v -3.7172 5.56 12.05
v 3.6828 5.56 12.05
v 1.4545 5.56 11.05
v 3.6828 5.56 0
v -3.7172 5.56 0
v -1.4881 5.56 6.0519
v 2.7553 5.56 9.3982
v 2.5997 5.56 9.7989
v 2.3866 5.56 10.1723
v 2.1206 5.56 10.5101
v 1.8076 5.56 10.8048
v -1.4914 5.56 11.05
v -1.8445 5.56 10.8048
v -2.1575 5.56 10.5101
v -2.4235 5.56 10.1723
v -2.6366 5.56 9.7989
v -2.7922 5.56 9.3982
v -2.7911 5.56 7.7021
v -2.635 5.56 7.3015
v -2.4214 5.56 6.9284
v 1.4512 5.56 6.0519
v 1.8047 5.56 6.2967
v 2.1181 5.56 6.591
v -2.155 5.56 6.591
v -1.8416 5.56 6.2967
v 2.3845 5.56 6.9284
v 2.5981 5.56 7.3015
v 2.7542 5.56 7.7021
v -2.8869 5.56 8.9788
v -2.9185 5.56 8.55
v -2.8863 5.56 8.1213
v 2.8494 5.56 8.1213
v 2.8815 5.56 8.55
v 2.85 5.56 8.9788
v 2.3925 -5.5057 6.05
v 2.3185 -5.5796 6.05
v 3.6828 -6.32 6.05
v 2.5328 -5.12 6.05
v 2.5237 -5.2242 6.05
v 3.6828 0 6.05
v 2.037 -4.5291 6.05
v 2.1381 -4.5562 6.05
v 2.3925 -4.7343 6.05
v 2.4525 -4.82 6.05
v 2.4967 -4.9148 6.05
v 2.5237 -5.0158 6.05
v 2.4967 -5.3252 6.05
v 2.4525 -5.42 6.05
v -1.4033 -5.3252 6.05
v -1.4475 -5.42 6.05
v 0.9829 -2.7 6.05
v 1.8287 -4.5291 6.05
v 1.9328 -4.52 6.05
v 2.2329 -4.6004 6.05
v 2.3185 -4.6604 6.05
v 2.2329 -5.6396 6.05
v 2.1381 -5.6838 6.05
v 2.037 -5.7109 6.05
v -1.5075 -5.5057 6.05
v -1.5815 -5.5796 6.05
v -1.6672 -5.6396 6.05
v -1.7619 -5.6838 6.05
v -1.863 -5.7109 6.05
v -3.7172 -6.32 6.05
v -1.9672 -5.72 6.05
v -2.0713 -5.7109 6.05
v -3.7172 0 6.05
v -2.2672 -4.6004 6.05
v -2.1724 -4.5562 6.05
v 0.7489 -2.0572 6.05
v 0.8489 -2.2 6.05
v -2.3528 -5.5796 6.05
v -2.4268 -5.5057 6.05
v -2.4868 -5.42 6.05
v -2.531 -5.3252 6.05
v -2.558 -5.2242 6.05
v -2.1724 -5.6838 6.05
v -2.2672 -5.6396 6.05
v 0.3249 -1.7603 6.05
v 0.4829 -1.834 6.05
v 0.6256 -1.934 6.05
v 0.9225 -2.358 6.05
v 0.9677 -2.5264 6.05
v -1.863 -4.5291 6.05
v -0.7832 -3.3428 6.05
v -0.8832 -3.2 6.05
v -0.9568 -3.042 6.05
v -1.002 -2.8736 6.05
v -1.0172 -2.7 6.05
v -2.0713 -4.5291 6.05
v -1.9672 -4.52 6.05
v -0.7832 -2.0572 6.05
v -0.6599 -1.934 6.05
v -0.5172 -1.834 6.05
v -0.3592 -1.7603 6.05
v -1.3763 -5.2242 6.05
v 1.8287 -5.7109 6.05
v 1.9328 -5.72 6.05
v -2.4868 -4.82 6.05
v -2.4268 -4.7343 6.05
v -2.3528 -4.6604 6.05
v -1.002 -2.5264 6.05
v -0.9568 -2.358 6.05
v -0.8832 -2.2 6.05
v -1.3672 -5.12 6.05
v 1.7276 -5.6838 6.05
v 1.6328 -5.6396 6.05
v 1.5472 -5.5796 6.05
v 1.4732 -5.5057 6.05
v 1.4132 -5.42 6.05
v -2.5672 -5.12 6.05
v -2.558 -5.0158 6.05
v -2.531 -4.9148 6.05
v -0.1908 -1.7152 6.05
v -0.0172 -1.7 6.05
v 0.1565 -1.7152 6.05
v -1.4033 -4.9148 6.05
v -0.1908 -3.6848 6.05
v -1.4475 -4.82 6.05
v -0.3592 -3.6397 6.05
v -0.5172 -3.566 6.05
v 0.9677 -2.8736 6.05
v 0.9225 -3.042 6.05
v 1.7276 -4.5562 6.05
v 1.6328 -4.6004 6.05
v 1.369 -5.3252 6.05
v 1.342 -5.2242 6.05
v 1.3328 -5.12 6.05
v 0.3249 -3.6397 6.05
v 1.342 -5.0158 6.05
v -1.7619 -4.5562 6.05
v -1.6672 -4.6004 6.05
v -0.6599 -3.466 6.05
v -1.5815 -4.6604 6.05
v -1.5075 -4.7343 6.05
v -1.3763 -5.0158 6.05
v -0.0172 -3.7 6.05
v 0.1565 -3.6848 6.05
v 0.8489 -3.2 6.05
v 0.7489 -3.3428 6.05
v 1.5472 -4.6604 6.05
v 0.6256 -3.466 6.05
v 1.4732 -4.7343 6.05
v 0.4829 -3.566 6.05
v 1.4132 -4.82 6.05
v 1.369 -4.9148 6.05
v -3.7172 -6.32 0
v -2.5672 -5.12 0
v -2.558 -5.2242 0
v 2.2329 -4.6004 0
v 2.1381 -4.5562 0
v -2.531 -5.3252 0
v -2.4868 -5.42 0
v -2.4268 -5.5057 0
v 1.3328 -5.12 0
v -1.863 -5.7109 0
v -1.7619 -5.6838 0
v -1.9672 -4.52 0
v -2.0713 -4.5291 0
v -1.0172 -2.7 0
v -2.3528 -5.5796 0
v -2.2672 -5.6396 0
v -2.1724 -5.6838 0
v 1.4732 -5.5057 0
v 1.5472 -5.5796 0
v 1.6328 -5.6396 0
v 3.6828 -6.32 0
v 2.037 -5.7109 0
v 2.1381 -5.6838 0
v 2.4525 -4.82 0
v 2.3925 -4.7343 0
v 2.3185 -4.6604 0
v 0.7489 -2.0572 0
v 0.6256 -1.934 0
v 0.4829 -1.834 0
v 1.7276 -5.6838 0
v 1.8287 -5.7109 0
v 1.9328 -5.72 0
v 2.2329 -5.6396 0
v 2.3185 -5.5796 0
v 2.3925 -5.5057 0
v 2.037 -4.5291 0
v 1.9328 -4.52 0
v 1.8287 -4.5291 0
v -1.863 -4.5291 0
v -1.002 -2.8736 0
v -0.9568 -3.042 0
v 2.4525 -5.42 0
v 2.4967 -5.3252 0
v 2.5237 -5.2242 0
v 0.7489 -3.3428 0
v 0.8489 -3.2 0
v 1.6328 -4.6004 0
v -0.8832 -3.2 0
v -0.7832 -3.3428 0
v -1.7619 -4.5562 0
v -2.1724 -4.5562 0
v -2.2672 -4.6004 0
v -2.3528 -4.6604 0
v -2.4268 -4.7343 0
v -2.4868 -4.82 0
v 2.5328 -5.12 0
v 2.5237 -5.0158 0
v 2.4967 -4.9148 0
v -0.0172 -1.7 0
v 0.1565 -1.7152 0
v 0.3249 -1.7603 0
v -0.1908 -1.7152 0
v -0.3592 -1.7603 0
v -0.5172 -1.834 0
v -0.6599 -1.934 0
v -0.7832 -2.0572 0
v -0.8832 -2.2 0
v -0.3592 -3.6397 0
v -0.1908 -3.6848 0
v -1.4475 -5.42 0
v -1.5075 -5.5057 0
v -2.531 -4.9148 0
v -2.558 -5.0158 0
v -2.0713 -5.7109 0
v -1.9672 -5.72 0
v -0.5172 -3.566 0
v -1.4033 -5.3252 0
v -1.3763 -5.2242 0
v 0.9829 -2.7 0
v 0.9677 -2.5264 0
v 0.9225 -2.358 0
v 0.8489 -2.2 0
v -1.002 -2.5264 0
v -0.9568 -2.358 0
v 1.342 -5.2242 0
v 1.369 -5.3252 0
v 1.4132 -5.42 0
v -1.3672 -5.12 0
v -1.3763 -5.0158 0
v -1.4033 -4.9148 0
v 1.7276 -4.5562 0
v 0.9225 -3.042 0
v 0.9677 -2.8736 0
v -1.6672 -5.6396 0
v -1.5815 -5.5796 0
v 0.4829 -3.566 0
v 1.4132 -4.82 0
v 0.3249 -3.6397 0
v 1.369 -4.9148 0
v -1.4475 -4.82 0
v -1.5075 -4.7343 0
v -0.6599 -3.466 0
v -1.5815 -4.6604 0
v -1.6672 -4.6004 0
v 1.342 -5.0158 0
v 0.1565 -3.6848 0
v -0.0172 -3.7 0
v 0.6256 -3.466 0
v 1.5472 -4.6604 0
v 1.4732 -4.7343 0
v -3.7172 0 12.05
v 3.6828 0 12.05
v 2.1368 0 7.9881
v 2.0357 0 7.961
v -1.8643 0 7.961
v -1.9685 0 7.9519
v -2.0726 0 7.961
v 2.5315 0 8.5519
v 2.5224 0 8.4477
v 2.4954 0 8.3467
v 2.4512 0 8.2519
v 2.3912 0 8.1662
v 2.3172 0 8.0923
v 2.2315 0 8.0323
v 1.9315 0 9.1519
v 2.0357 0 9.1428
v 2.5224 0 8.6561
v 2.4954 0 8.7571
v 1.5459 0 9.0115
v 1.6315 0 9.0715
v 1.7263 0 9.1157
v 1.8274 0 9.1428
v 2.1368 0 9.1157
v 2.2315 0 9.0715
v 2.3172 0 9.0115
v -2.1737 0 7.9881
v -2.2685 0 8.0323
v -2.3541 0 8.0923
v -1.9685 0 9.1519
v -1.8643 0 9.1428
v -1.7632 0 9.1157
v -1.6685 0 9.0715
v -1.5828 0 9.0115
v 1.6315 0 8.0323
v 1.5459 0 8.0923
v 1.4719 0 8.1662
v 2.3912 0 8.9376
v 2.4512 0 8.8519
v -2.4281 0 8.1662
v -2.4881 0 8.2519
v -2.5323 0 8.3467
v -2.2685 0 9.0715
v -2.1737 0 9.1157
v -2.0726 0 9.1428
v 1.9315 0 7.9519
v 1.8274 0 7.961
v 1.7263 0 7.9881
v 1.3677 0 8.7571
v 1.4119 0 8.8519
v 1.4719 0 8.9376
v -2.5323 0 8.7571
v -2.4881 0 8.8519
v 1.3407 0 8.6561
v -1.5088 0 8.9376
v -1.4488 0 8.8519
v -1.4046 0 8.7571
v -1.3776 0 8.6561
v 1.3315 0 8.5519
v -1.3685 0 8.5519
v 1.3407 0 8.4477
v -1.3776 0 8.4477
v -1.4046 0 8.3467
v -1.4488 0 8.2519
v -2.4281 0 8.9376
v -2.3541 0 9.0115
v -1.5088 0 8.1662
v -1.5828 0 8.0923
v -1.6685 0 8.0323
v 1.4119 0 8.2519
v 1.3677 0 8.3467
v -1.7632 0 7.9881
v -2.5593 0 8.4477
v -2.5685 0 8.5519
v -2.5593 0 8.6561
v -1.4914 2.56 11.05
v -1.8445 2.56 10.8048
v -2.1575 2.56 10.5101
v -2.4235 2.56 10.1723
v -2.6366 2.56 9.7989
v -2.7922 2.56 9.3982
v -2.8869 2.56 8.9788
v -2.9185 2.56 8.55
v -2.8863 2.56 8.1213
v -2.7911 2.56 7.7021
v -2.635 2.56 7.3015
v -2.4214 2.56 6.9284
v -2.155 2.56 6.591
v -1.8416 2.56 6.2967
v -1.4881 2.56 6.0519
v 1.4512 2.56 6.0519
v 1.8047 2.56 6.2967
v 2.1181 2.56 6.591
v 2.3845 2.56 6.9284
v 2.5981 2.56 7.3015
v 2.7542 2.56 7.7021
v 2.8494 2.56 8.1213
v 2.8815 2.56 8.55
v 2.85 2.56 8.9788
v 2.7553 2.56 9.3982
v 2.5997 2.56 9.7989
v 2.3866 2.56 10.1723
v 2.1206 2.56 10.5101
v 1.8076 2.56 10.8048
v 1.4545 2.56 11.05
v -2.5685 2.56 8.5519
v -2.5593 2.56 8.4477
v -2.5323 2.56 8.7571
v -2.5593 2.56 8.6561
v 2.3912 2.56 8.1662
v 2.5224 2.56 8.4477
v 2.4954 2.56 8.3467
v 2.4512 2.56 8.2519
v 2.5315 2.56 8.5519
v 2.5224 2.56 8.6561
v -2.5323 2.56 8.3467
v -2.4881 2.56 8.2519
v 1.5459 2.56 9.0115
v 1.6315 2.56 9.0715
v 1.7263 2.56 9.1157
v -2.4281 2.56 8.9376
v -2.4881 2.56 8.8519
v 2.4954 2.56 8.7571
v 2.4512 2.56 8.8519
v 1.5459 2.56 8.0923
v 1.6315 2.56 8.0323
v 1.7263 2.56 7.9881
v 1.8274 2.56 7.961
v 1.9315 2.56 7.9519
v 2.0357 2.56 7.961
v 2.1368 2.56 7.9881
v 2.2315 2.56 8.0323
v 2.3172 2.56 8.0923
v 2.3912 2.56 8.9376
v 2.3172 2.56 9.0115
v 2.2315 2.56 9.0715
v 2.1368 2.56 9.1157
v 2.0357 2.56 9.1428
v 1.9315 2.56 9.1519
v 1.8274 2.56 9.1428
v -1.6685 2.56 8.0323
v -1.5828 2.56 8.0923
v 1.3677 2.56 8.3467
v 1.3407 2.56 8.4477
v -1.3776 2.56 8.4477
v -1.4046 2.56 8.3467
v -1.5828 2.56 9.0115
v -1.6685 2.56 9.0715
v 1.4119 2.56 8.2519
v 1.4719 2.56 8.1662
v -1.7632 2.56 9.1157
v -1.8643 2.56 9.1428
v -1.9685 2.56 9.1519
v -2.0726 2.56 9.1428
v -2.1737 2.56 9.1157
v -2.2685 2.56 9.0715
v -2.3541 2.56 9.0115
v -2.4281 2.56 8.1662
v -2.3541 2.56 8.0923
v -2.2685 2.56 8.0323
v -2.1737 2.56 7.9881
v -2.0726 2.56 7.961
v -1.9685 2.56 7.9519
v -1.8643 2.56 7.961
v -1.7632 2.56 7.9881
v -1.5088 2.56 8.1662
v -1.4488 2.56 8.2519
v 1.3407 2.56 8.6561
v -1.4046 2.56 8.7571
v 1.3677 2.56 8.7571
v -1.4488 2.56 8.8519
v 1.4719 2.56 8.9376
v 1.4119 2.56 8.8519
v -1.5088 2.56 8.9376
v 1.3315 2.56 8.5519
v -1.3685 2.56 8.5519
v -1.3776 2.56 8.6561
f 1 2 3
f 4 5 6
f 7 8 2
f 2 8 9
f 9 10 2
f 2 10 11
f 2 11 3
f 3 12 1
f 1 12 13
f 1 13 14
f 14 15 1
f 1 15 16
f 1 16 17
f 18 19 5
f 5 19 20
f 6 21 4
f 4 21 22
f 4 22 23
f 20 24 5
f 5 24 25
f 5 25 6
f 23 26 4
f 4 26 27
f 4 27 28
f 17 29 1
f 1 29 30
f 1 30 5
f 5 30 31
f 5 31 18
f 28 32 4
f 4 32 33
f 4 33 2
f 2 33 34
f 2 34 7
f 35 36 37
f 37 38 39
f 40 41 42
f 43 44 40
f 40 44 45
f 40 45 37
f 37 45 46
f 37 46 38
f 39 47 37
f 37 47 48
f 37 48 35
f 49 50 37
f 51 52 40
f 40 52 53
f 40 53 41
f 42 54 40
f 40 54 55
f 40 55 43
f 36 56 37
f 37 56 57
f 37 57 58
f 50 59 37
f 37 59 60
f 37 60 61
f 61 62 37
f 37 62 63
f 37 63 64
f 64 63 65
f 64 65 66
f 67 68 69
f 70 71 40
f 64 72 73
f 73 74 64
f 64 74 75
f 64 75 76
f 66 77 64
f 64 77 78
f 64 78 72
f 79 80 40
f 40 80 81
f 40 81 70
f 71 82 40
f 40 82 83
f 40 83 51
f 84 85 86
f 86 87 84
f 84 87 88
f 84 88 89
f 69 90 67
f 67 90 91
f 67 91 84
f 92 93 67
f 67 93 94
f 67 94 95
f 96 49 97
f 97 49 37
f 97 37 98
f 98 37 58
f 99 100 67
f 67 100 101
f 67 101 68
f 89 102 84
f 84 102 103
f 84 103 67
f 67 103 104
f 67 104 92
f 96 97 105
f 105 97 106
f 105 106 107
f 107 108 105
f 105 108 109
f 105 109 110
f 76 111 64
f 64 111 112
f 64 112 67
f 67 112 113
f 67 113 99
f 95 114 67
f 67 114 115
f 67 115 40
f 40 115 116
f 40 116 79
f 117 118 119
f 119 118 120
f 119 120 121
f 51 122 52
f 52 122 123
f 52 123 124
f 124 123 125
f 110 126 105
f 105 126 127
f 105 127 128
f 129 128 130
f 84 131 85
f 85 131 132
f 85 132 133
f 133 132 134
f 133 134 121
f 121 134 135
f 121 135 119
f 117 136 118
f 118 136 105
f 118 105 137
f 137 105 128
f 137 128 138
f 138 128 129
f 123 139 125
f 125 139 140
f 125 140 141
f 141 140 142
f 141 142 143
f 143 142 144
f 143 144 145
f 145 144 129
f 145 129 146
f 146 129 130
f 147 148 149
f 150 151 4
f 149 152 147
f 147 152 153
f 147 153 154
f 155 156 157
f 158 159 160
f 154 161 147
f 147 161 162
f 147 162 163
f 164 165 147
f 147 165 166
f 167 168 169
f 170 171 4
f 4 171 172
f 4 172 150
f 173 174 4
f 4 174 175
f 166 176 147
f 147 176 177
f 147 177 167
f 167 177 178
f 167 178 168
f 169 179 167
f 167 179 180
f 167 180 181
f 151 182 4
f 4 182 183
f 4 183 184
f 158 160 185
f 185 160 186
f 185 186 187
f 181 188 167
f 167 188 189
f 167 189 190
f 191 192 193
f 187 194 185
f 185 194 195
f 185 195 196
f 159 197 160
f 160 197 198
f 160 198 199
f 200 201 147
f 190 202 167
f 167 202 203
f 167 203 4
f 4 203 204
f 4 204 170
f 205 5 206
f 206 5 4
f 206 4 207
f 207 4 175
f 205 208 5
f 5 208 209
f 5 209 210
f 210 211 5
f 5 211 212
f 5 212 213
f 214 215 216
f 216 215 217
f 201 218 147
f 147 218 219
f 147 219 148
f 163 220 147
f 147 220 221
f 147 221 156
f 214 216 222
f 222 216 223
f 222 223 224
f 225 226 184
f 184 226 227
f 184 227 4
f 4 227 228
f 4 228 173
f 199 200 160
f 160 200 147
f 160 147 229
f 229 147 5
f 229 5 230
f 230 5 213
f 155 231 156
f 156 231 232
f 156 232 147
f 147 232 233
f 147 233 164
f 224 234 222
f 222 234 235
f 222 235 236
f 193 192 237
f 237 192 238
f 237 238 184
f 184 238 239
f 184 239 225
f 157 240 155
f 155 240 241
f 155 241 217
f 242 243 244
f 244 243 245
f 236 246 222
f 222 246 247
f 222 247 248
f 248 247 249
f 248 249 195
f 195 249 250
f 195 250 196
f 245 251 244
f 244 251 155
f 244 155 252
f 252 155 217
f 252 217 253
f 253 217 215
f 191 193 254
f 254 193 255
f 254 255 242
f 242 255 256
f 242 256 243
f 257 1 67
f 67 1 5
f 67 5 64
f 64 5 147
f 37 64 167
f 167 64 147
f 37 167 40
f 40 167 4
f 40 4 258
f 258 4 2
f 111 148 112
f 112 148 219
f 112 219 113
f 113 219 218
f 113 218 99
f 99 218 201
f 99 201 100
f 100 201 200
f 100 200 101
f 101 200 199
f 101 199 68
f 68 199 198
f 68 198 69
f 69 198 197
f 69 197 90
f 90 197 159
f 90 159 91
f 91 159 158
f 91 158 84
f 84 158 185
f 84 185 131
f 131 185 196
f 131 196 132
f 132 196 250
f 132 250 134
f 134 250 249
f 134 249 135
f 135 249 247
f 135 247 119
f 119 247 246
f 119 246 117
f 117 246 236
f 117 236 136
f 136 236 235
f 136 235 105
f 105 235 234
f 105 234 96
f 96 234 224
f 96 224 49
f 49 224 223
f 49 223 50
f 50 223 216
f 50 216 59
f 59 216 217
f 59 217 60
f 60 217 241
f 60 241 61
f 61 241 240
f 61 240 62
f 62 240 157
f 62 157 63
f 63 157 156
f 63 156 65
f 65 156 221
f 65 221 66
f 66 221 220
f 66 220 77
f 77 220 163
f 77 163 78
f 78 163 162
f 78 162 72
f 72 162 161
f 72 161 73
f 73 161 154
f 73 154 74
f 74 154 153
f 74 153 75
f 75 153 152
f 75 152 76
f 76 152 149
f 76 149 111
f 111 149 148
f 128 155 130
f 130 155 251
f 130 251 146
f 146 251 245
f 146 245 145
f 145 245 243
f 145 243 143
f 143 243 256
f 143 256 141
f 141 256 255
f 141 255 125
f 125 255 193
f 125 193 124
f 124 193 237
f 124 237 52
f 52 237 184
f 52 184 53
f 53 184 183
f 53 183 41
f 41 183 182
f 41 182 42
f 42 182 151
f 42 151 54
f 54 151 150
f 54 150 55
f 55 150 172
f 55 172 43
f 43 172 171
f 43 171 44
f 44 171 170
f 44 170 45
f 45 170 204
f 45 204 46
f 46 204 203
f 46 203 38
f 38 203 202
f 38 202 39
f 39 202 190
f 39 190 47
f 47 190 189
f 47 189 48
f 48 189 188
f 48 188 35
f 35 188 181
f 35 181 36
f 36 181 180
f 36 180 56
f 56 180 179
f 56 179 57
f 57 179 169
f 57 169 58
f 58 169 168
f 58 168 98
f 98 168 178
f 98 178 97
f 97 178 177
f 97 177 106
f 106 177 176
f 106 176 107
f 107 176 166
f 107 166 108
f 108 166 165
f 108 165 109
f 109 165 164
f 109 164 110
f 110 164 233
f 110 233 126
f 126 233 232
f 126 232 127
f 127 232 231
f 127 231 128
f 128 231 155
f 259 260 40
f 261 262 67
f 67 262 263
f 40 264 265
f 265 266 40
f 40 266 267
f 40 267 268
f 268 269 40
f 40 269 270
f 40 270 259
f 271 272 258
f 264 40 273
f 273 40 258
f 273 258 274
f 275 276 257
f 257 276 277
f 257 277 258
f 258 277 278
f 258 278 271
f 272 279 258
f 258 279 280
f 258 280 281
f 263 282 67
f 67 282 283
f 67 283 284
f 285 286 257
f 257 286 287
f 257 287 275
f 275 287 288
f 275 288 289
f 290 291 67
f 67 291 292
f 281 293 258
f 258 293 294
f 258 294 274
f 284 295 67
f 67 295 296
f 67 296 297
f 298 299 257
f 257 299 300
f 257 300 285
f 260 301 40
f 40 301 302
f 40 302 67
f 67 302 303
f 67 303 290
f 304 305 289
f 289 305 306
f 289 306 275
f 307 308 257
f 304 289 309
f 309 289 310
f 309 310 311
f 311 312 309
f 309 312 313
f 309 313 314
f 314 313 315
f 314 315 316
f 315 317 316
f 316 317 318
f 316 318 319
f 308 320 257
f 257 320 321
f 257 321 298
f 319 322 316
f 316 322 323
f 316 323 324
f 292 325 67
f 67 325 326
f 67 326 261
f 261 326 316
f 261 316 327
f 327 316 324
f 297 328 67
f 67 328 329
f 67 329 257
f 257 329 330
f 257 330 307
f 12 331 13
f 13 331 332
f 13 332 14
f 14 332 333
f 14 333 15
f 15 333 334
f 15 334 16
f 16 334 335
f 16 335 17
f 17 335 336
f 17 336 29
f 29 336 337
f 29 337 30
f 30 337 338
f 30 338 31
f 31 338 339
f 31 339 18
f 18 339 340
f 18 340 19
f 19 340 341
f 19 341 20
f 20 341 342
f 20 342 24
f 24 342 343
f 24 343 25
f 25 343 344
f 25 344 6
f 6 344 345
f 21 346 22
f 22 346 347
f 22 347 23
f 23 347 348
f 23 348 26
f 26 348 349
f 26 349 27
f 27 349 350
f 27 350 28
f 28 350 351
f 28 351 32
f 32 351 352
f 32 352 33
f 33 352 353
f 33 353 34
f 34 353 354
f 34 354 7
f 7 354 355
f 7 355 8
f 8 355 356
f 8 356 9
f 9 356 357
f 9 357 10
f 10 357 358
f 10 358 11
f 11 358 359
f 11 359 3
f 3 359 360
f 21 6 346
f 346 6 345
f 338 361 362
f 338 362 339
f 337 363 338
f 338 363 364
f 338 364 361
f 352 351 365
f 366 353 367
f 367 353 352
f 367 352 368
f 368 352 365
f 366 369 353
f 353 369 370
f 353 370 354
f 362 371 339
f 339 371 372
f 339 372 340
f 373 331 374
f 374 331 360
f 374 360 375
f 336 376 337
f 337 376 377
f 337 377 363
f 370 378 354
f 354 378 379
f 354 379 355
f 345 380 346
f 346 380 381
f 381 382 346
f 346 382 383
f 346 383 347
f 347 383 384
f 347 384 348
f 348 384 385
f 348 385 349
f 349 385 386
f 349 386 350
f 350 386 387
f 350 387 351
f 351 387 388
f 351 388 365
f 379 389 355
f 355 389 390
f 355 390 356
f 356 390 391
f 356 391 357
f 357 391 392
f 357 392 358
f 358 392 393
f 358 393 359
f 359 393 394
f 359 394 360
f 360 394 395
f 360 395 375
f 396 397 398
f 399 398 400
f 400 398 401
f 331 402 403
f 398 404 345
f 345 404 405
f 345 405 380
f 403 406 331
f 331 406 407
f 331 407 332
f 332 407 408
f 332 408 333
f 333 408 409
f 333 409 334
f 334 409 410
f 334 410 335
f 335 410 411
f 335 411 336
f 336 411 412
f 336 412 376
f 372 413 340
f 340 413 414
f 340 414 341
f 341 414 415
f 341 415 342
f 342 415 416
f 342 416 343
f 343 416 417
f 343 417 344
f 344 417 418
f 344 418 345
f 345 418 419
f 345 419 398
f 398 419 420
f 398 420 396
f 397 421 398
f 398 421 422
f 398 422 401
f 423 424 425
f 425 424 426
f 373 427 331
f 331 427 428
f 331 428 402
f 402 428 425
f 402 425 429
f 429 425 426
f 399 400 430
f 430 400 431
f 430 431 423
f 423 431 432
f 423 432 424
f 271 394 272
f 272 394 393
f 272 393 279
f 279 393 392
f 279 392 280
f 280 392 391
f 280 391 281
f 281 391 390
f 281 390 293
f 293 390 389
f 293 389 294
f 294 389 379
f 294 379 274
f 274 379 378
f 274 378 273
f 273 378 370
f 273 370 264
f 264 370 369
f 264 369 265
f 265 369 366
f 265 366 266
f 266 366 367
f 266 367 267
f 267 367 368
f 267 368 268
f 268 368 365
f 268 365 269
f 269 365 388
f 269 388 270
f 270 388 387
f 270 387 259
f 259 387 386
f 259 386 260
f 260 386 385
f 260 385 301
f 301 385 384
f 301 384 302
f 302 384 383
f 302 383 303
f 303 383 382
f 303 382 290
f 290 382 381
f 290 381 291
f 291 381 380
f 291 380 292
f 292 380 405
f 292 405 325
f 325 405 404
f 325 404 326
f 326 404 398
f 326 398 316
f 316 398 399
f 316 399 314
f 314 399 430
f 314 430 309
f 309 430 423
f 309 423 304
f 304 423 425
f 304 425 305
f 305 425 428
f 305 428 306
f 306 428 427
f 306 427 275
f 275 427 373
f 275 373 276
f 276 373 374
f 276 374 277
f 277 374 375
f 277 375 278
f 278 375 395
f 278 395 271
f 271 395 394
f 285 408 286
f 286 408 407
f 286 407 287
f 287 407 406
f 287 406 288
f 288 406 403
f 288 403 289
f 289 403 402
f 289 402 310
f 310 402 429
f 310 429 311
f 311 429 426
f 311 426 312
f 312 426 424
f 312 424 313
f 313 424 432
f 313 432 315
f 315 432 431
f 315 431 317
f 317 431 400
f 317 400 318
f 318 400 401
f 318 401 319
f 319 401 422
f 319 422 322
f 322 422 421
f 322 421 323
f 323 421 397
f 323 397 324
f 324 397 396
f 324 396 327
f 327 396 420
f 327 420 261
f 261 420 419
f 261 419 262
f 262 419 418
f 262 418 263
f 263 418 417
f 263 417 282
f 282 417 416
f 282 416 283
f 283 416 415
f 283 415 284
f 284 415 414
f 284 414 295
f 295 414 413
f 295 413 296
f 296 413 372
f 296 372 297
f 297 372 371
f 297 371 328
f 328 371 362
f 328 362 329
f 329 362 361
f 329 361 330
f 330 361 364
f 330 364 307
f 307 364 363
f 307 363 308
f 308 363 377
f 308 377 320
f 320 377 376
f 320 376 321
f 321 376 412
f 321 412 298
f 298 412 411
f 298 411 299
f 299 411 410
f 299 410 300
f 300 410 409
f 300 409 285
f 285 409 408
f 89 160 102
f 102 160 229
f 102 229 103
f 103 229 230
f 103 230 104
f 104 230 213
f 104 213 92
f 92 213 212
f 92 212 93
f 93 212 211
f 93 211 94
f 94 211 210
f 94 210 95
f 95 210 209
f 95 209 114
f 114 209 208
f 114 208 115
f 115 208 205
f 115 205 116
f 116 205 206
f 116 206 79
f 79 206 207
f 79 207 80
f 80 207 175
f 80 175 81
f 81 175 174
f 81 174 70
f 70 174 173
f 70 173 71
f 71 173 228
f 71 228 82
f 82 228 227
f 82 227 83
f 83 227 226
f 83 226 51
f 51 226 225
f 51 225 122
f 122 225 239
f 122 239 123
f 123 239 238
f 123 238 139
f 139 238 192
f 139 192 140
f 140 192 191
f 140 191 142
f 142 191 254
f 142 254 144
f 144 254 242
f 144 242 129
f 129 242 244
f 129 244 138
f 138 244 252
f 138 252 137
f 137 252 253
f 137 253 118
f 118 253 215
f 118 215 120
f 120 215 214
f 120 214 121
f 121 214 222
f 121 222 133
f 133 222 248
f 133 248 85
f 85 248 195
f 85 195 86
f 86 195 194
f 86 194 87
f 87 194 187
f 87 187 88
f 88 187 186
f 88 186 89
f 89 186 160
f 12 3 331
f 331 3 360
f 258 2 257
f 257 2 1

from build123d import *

# Parameters (mm, degrees)
SKETCH_2_W            = 7.400000122
SKETCH_2_H            = 11.88
SKETCH_2_R            = 0.6
EXTRUDE_1_DEPTH       = 6.05
SKETCH_3_W            = 7.400000122
SKETCH_3_H            = 5.56
EXTRUDE_2_DEPTH       = 5
CUT_EXTRUDE_1_DEPTH   = 3
CUT_EXTRUDE_START     = 3
CUT_EXTRUDE_2_DEPTH   = 3
SKETCH_7_R            = 0.6
CUT_EXTRUDE_2_2_DEPTH = 15.655173365
SKETCH_8_R            = 1
CUT_EXTRUDE_3_DEPTH   = 14.261301081
SKETCH_9_W            = 7.400000122
SKETCH_9_H            = 5.56
EXTRUDE_3_DEPTH       = 1


with BuildPart() as part:
    # Эскиз2 → Бобышка-Вытянуть1 (new body)
    with BuildSketch(Plane.XY):
        with Locations((-0.017150241, -0.38)):
            Rectangle(SKETCH_2_W, SKETCH_2_H)
        with Locations((-1.967150241, -5.12)):
            Circle(SKETCH_2_R, mode=Mode.SUBTRACT)
        with Locations((1.932849759, -5.12)):
            Circle(SKETCH_2_R, mode=Mode.SUBTRACT)
    extrude(amount=EXTRUDE_1_DEPTH)

    # Эскиз3 → Бобышка-Вытянуть2 (add)
    with BuildSketch(Plane.XY.offset(6.05)):
        with Locations((-0.017150241, 2.78)):
            Rectangle(SKETCH_3_W, SKETCH_3_H)
    extrude(amount=EXTRUDE_2_DEPTH)

    # Эскиз5 → Вырез-Вытянуть1 (cut)
    with BuildSketch(Plane(origin=(0, 5.56, 0), x_dir=(1, 0, 0), z_dir=(0, 1, 0))):
        with BuildLine():
            Line((-1.018455159, -10.651897729), (-1.374921155, -10.651897729))
            ThreePointArc((-1.374921155, -10.651897729), (-2.518455159, -8.551897729), (-1.374921155, -6.451897729))
            Line((-1.374921155, -6.451897729), (0.581544841, -6.451897729))
            Line((0.581544841, -6.451897729), (0.981544841, -6.451897729))
            Line((0.981544841, -6.451897729), (1.338010838, -6.451897729))
            ThreePointArc((1.338010838, -6.451897729), (2.481544841, -8.551897729), (1.338010838, -10.651897729))
            Line((1.338010838, -10.651897729), (-0.618455159, -10.651897729))
            Line((-0.618455159, -10.651897729), (-1.018455159, -10.651897729))
        make_face()
    extrude(amount=-CUT_EXTRUDE_1_DEPTH, mode=Mode.SUBTRACT)

    # Эскиз6 → Cut-Extrude 2 (cut)
    with BuildSketch(Plane(origin=(0, 2.56, 0), x_dir=(1, 0, 0), z_dir=(0, 1, 0)).offset(CUT_EXTRUDE_START)):
        with BuildLine():
            Line((-1.488149005, -11.051897729), (1.451238687, -11.051897729))
            ThreePointArc((1.451238687, -11.051897729), (2.881544841, -8.551897729), (1.451238687, -6.051897729))
            Line((1.451238687, -6.051897729), (-1.488149005, -6.051897729))
            ThreePointArc((-1.488149005, -6.051897729), (-2.918455159, -8.551897729), (-1.488149005, -11.051897729))
        make_face()
        with BuildLine():
            Line((-1.374921155, -10.651897729), (1.338010838, -10.651897729))
            ThreePointArc((1.338010838, -10.651897729), (2.481544841, -8.551897729), (1.338010838, -6.451897729))
            Line((1.338010838, -6.451897729), (-1.374921155, -6.451897729))
            ThreePointArc((-1.374921155, -6.451897729), (-2.518455159, -8.551897729), (-1.374921155, -10.651897729))
        make_face(mode=Mode.SUBTRACT)
    extrude(amount=-CUT_EXTRUDE_2_DEPTH, mode=Mode.SUBTRACT)

    # Эскиз7 → Cut-Extrude 2 2 (cut, through all)
    with BuildSketch(Plane(origin=(0, 2.56, 0), x_dir=(1, 0, 0), z_dir=(0, 1, 0))):
        with Locations(Location((-1.968455159, -8.551897729, 0), (0, 0, 270))):
            Circle(SKETCH_7_R)
        with Locations(Location((1.931544841, -8.551897729, 0), (0, 0, 270))):
            Circle(SKETCH_7_R)
    extrude(amount=-CUT_EXTRUDE_2_2_DEPTH, mode=Mode.SUBTRACT)

    # Эскиз8 → Вырез-Вытянуть3 (cut, through all)
    with BuildSketch(Plane(origin=(0, 0, 0), x_dir=(-1, 0, 0), z_dir=(0, 0, -1))):
        with Locations((0.017150241, -2.7)):
            Circle(SKETCH_8_R)
    extrude(amount=-CUT_EXTRUDE_3_DEPTH, mode=Mode.SUBTRACT)

    # Эскиз9 → Бобышка-Вытянуть3 (add)
    with BuildSketch(Plane.XY.offset(11.05)):
        with Locations((-0.017150241, 2.78)):
            Rectangle(SKETCH_9_W, SKETCH_9_H)
    extrude(amount=EXTRUDE_3_DEPTH)


solid = part.part
